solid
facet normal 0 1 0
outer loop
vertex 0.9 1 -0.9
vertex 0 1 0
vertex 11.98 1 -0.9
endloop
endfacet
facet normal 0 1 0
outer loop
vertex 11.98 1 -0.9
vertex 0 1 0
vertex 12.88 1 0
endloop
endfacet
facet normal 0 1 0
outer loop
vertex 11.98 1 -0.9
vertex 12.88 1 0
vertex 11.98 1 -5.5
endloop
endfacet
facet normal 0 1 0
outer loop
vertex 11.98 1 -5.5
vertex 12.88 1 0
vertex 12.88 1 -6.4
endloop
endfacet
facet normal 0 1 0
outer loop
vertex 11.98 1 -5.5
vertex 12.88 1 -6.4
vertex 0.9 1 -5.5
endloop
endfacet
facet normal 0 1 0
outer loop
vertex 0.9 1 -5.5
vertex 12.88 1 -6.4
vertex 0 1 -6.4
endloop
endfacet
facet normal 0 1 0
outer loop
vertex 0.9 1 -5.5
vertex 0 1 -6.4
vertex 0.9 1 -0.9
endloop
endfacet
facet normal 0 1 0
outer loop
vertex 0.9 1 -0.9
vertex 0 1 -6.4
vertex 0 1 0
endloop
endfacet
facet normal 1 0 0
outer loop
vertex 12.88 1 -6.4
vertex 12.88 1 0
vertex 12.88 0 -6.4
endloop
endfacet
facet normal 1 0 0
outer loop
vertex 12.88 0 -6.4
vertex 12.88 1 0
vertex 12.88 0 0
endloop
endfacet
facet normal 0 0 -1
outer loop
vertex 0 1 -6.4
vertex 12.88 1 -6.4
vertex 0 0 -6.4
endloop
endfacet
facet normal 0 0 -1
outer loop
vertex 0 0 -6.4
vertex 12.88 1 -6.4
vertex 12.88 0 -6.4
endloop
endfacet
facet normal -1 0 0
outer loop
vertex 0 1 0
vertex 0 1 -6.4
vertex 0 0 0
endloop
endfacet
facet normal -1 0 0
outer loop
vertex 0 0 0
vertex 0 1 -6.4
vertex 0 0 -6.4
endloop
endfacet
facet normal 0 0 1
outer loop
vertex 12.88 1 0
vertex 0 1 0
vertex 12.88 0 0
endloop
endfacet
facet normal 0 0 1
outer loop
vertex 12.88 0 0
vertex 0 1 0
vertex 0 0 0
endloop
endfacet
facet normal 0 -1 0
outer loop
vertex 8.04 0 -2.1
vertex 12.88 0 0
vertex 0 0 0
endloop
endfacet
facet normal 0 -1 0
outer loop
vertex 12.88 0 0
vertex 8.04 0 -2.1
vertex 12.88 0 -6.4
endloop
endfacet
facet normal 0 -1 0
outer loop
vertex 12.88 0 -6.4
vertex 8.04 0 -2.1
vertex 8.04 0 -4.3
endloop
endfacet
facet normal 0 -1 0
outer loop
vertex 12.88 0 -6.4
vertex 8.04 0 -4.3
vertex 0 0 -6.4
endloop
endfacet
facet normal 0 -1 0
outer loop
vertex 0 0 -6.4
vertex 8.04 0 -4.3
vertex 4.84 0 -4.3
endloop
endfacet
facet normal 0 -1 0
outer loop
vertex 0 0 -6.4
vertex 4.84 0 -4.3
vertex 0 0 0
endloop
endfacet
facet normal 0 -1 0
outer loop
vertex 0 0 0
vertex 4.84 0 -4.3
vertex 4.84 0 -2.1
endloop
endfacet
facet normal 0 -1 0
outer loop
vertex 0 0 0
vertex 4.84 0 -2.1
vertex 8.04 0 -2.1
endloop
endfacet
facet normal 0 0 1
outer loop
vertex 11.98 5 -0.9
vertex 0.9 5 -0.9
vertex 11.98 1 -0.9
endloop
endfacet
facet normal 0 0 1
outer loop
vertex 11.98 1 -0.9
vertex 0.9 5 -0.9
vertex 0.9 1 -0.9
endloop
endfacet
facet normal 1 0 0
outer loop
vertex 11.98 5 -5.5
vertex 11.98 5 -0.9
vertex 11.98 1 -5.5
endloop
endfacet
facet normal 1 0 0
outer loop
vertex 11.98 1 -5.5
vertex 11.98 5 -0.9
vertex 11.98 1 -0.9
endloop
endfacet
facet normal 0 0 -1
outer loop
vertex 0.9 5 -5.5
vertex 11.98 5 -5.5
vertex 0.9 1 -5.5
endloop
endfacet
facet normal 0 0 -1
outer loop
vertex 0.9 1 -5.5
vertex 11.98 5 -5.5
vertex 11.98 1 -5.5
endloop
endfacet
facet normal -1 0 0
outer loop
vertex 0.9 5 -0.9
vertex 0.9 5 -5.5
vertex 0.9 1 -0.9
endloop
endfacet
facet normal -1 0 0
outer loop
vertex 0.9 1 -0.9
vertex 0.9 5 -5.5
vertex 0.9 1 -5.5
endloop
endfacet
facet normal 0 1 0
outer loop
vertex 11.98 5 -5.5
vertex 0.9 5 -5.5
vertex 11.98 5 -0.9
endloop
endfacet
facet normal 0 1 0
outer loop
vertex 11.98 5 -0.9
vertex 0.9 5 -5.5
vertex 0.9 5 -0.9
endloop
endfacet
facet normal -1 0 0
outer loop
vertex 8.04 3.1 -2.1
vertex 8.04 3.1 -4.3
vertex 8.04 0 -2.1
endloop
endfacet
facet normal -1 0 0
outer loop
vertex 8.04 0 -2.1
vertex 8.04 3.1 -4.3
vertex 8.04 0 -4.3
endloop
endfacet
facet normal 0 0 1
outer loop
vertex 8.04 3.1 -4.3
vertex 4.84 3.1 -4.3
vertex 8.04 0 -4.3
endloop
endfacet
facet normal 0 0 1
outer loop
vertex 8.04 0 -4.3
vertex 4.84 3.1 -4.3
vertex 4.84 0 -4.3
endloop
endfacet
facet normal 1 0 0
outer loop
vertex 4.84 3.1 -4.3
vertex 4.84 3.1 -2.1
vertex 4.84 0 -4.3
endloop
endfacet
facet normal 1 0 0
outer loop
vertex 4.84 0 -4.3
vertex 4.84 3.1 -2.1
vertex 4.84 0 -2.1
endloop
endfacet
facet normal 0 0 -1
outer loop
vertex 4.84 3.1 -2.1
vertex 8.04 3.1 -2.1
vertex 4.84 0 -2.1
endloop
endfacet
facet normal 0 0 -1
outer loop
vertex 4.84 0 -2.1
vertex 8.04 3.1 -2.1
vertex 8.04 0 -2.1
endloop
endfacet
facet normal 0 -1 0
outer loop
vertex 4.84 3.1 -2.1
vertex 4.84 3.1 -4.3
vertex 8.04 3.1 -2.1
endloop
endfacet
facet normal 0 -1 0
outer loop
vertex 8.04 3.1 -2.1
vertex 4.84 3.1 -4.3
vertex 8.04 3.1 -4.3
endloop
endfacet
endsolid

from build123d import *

# Parameters (mm, degrees)
SKETCH1_W           = 12.88
SKETCH1_H           = 6.4
BOSS_EXTRUDE1_DEPTH = 1
SKETCH3_W           = 11.08
SKETCH3_H           = 4.6
BOSS_EXTRUDE2_DEPTH = 4
SKETCH4_W           = 3.2
SKETCH4_H           = 2.2
CUT_EXTRUDE1_DEPTH  = 3.1


with BuildPart() as part:
    # Sketch1 → Boss-Extrude1 (new body)
    with BuildSketch(Plane(origin=(0, 0, 0), x_dir=(1, 0, 0), z_dir=(0, 1, 0))):
        with Locations((6.44, 3.2)):
            Rectangle(SKETCH1_W, SKETCH1_H)
    extrude(amount=BOSS_EXTRUDE1_DEPTH)

    # Sketch3 → Boss-Extrude2 (add)
    with BuildSketch(Plane(origin=(0, 1, 0), x_dir=(1, 0, 0), z_dir=(0, 1, 0))):
        with Locations((6.44, 3.2)):
            Rectangle(SKETCH3_W, SKETCH3_H)
    extrude(amount=BOSS_EXTRUDE2_DEPTH)

    # Sketch4 → Cut-Extrude1 (cut)
    with BuildSketch(Plane.XZ):
        with Locations((6.44, -3.2)):
            Rectangle(SKETCH4_W, SKETCH4_H)
    extrude(amount=-CUT_EXTRUDE1_DEPTH, mode=Mode.SUBTRACT)


solid = part.part
